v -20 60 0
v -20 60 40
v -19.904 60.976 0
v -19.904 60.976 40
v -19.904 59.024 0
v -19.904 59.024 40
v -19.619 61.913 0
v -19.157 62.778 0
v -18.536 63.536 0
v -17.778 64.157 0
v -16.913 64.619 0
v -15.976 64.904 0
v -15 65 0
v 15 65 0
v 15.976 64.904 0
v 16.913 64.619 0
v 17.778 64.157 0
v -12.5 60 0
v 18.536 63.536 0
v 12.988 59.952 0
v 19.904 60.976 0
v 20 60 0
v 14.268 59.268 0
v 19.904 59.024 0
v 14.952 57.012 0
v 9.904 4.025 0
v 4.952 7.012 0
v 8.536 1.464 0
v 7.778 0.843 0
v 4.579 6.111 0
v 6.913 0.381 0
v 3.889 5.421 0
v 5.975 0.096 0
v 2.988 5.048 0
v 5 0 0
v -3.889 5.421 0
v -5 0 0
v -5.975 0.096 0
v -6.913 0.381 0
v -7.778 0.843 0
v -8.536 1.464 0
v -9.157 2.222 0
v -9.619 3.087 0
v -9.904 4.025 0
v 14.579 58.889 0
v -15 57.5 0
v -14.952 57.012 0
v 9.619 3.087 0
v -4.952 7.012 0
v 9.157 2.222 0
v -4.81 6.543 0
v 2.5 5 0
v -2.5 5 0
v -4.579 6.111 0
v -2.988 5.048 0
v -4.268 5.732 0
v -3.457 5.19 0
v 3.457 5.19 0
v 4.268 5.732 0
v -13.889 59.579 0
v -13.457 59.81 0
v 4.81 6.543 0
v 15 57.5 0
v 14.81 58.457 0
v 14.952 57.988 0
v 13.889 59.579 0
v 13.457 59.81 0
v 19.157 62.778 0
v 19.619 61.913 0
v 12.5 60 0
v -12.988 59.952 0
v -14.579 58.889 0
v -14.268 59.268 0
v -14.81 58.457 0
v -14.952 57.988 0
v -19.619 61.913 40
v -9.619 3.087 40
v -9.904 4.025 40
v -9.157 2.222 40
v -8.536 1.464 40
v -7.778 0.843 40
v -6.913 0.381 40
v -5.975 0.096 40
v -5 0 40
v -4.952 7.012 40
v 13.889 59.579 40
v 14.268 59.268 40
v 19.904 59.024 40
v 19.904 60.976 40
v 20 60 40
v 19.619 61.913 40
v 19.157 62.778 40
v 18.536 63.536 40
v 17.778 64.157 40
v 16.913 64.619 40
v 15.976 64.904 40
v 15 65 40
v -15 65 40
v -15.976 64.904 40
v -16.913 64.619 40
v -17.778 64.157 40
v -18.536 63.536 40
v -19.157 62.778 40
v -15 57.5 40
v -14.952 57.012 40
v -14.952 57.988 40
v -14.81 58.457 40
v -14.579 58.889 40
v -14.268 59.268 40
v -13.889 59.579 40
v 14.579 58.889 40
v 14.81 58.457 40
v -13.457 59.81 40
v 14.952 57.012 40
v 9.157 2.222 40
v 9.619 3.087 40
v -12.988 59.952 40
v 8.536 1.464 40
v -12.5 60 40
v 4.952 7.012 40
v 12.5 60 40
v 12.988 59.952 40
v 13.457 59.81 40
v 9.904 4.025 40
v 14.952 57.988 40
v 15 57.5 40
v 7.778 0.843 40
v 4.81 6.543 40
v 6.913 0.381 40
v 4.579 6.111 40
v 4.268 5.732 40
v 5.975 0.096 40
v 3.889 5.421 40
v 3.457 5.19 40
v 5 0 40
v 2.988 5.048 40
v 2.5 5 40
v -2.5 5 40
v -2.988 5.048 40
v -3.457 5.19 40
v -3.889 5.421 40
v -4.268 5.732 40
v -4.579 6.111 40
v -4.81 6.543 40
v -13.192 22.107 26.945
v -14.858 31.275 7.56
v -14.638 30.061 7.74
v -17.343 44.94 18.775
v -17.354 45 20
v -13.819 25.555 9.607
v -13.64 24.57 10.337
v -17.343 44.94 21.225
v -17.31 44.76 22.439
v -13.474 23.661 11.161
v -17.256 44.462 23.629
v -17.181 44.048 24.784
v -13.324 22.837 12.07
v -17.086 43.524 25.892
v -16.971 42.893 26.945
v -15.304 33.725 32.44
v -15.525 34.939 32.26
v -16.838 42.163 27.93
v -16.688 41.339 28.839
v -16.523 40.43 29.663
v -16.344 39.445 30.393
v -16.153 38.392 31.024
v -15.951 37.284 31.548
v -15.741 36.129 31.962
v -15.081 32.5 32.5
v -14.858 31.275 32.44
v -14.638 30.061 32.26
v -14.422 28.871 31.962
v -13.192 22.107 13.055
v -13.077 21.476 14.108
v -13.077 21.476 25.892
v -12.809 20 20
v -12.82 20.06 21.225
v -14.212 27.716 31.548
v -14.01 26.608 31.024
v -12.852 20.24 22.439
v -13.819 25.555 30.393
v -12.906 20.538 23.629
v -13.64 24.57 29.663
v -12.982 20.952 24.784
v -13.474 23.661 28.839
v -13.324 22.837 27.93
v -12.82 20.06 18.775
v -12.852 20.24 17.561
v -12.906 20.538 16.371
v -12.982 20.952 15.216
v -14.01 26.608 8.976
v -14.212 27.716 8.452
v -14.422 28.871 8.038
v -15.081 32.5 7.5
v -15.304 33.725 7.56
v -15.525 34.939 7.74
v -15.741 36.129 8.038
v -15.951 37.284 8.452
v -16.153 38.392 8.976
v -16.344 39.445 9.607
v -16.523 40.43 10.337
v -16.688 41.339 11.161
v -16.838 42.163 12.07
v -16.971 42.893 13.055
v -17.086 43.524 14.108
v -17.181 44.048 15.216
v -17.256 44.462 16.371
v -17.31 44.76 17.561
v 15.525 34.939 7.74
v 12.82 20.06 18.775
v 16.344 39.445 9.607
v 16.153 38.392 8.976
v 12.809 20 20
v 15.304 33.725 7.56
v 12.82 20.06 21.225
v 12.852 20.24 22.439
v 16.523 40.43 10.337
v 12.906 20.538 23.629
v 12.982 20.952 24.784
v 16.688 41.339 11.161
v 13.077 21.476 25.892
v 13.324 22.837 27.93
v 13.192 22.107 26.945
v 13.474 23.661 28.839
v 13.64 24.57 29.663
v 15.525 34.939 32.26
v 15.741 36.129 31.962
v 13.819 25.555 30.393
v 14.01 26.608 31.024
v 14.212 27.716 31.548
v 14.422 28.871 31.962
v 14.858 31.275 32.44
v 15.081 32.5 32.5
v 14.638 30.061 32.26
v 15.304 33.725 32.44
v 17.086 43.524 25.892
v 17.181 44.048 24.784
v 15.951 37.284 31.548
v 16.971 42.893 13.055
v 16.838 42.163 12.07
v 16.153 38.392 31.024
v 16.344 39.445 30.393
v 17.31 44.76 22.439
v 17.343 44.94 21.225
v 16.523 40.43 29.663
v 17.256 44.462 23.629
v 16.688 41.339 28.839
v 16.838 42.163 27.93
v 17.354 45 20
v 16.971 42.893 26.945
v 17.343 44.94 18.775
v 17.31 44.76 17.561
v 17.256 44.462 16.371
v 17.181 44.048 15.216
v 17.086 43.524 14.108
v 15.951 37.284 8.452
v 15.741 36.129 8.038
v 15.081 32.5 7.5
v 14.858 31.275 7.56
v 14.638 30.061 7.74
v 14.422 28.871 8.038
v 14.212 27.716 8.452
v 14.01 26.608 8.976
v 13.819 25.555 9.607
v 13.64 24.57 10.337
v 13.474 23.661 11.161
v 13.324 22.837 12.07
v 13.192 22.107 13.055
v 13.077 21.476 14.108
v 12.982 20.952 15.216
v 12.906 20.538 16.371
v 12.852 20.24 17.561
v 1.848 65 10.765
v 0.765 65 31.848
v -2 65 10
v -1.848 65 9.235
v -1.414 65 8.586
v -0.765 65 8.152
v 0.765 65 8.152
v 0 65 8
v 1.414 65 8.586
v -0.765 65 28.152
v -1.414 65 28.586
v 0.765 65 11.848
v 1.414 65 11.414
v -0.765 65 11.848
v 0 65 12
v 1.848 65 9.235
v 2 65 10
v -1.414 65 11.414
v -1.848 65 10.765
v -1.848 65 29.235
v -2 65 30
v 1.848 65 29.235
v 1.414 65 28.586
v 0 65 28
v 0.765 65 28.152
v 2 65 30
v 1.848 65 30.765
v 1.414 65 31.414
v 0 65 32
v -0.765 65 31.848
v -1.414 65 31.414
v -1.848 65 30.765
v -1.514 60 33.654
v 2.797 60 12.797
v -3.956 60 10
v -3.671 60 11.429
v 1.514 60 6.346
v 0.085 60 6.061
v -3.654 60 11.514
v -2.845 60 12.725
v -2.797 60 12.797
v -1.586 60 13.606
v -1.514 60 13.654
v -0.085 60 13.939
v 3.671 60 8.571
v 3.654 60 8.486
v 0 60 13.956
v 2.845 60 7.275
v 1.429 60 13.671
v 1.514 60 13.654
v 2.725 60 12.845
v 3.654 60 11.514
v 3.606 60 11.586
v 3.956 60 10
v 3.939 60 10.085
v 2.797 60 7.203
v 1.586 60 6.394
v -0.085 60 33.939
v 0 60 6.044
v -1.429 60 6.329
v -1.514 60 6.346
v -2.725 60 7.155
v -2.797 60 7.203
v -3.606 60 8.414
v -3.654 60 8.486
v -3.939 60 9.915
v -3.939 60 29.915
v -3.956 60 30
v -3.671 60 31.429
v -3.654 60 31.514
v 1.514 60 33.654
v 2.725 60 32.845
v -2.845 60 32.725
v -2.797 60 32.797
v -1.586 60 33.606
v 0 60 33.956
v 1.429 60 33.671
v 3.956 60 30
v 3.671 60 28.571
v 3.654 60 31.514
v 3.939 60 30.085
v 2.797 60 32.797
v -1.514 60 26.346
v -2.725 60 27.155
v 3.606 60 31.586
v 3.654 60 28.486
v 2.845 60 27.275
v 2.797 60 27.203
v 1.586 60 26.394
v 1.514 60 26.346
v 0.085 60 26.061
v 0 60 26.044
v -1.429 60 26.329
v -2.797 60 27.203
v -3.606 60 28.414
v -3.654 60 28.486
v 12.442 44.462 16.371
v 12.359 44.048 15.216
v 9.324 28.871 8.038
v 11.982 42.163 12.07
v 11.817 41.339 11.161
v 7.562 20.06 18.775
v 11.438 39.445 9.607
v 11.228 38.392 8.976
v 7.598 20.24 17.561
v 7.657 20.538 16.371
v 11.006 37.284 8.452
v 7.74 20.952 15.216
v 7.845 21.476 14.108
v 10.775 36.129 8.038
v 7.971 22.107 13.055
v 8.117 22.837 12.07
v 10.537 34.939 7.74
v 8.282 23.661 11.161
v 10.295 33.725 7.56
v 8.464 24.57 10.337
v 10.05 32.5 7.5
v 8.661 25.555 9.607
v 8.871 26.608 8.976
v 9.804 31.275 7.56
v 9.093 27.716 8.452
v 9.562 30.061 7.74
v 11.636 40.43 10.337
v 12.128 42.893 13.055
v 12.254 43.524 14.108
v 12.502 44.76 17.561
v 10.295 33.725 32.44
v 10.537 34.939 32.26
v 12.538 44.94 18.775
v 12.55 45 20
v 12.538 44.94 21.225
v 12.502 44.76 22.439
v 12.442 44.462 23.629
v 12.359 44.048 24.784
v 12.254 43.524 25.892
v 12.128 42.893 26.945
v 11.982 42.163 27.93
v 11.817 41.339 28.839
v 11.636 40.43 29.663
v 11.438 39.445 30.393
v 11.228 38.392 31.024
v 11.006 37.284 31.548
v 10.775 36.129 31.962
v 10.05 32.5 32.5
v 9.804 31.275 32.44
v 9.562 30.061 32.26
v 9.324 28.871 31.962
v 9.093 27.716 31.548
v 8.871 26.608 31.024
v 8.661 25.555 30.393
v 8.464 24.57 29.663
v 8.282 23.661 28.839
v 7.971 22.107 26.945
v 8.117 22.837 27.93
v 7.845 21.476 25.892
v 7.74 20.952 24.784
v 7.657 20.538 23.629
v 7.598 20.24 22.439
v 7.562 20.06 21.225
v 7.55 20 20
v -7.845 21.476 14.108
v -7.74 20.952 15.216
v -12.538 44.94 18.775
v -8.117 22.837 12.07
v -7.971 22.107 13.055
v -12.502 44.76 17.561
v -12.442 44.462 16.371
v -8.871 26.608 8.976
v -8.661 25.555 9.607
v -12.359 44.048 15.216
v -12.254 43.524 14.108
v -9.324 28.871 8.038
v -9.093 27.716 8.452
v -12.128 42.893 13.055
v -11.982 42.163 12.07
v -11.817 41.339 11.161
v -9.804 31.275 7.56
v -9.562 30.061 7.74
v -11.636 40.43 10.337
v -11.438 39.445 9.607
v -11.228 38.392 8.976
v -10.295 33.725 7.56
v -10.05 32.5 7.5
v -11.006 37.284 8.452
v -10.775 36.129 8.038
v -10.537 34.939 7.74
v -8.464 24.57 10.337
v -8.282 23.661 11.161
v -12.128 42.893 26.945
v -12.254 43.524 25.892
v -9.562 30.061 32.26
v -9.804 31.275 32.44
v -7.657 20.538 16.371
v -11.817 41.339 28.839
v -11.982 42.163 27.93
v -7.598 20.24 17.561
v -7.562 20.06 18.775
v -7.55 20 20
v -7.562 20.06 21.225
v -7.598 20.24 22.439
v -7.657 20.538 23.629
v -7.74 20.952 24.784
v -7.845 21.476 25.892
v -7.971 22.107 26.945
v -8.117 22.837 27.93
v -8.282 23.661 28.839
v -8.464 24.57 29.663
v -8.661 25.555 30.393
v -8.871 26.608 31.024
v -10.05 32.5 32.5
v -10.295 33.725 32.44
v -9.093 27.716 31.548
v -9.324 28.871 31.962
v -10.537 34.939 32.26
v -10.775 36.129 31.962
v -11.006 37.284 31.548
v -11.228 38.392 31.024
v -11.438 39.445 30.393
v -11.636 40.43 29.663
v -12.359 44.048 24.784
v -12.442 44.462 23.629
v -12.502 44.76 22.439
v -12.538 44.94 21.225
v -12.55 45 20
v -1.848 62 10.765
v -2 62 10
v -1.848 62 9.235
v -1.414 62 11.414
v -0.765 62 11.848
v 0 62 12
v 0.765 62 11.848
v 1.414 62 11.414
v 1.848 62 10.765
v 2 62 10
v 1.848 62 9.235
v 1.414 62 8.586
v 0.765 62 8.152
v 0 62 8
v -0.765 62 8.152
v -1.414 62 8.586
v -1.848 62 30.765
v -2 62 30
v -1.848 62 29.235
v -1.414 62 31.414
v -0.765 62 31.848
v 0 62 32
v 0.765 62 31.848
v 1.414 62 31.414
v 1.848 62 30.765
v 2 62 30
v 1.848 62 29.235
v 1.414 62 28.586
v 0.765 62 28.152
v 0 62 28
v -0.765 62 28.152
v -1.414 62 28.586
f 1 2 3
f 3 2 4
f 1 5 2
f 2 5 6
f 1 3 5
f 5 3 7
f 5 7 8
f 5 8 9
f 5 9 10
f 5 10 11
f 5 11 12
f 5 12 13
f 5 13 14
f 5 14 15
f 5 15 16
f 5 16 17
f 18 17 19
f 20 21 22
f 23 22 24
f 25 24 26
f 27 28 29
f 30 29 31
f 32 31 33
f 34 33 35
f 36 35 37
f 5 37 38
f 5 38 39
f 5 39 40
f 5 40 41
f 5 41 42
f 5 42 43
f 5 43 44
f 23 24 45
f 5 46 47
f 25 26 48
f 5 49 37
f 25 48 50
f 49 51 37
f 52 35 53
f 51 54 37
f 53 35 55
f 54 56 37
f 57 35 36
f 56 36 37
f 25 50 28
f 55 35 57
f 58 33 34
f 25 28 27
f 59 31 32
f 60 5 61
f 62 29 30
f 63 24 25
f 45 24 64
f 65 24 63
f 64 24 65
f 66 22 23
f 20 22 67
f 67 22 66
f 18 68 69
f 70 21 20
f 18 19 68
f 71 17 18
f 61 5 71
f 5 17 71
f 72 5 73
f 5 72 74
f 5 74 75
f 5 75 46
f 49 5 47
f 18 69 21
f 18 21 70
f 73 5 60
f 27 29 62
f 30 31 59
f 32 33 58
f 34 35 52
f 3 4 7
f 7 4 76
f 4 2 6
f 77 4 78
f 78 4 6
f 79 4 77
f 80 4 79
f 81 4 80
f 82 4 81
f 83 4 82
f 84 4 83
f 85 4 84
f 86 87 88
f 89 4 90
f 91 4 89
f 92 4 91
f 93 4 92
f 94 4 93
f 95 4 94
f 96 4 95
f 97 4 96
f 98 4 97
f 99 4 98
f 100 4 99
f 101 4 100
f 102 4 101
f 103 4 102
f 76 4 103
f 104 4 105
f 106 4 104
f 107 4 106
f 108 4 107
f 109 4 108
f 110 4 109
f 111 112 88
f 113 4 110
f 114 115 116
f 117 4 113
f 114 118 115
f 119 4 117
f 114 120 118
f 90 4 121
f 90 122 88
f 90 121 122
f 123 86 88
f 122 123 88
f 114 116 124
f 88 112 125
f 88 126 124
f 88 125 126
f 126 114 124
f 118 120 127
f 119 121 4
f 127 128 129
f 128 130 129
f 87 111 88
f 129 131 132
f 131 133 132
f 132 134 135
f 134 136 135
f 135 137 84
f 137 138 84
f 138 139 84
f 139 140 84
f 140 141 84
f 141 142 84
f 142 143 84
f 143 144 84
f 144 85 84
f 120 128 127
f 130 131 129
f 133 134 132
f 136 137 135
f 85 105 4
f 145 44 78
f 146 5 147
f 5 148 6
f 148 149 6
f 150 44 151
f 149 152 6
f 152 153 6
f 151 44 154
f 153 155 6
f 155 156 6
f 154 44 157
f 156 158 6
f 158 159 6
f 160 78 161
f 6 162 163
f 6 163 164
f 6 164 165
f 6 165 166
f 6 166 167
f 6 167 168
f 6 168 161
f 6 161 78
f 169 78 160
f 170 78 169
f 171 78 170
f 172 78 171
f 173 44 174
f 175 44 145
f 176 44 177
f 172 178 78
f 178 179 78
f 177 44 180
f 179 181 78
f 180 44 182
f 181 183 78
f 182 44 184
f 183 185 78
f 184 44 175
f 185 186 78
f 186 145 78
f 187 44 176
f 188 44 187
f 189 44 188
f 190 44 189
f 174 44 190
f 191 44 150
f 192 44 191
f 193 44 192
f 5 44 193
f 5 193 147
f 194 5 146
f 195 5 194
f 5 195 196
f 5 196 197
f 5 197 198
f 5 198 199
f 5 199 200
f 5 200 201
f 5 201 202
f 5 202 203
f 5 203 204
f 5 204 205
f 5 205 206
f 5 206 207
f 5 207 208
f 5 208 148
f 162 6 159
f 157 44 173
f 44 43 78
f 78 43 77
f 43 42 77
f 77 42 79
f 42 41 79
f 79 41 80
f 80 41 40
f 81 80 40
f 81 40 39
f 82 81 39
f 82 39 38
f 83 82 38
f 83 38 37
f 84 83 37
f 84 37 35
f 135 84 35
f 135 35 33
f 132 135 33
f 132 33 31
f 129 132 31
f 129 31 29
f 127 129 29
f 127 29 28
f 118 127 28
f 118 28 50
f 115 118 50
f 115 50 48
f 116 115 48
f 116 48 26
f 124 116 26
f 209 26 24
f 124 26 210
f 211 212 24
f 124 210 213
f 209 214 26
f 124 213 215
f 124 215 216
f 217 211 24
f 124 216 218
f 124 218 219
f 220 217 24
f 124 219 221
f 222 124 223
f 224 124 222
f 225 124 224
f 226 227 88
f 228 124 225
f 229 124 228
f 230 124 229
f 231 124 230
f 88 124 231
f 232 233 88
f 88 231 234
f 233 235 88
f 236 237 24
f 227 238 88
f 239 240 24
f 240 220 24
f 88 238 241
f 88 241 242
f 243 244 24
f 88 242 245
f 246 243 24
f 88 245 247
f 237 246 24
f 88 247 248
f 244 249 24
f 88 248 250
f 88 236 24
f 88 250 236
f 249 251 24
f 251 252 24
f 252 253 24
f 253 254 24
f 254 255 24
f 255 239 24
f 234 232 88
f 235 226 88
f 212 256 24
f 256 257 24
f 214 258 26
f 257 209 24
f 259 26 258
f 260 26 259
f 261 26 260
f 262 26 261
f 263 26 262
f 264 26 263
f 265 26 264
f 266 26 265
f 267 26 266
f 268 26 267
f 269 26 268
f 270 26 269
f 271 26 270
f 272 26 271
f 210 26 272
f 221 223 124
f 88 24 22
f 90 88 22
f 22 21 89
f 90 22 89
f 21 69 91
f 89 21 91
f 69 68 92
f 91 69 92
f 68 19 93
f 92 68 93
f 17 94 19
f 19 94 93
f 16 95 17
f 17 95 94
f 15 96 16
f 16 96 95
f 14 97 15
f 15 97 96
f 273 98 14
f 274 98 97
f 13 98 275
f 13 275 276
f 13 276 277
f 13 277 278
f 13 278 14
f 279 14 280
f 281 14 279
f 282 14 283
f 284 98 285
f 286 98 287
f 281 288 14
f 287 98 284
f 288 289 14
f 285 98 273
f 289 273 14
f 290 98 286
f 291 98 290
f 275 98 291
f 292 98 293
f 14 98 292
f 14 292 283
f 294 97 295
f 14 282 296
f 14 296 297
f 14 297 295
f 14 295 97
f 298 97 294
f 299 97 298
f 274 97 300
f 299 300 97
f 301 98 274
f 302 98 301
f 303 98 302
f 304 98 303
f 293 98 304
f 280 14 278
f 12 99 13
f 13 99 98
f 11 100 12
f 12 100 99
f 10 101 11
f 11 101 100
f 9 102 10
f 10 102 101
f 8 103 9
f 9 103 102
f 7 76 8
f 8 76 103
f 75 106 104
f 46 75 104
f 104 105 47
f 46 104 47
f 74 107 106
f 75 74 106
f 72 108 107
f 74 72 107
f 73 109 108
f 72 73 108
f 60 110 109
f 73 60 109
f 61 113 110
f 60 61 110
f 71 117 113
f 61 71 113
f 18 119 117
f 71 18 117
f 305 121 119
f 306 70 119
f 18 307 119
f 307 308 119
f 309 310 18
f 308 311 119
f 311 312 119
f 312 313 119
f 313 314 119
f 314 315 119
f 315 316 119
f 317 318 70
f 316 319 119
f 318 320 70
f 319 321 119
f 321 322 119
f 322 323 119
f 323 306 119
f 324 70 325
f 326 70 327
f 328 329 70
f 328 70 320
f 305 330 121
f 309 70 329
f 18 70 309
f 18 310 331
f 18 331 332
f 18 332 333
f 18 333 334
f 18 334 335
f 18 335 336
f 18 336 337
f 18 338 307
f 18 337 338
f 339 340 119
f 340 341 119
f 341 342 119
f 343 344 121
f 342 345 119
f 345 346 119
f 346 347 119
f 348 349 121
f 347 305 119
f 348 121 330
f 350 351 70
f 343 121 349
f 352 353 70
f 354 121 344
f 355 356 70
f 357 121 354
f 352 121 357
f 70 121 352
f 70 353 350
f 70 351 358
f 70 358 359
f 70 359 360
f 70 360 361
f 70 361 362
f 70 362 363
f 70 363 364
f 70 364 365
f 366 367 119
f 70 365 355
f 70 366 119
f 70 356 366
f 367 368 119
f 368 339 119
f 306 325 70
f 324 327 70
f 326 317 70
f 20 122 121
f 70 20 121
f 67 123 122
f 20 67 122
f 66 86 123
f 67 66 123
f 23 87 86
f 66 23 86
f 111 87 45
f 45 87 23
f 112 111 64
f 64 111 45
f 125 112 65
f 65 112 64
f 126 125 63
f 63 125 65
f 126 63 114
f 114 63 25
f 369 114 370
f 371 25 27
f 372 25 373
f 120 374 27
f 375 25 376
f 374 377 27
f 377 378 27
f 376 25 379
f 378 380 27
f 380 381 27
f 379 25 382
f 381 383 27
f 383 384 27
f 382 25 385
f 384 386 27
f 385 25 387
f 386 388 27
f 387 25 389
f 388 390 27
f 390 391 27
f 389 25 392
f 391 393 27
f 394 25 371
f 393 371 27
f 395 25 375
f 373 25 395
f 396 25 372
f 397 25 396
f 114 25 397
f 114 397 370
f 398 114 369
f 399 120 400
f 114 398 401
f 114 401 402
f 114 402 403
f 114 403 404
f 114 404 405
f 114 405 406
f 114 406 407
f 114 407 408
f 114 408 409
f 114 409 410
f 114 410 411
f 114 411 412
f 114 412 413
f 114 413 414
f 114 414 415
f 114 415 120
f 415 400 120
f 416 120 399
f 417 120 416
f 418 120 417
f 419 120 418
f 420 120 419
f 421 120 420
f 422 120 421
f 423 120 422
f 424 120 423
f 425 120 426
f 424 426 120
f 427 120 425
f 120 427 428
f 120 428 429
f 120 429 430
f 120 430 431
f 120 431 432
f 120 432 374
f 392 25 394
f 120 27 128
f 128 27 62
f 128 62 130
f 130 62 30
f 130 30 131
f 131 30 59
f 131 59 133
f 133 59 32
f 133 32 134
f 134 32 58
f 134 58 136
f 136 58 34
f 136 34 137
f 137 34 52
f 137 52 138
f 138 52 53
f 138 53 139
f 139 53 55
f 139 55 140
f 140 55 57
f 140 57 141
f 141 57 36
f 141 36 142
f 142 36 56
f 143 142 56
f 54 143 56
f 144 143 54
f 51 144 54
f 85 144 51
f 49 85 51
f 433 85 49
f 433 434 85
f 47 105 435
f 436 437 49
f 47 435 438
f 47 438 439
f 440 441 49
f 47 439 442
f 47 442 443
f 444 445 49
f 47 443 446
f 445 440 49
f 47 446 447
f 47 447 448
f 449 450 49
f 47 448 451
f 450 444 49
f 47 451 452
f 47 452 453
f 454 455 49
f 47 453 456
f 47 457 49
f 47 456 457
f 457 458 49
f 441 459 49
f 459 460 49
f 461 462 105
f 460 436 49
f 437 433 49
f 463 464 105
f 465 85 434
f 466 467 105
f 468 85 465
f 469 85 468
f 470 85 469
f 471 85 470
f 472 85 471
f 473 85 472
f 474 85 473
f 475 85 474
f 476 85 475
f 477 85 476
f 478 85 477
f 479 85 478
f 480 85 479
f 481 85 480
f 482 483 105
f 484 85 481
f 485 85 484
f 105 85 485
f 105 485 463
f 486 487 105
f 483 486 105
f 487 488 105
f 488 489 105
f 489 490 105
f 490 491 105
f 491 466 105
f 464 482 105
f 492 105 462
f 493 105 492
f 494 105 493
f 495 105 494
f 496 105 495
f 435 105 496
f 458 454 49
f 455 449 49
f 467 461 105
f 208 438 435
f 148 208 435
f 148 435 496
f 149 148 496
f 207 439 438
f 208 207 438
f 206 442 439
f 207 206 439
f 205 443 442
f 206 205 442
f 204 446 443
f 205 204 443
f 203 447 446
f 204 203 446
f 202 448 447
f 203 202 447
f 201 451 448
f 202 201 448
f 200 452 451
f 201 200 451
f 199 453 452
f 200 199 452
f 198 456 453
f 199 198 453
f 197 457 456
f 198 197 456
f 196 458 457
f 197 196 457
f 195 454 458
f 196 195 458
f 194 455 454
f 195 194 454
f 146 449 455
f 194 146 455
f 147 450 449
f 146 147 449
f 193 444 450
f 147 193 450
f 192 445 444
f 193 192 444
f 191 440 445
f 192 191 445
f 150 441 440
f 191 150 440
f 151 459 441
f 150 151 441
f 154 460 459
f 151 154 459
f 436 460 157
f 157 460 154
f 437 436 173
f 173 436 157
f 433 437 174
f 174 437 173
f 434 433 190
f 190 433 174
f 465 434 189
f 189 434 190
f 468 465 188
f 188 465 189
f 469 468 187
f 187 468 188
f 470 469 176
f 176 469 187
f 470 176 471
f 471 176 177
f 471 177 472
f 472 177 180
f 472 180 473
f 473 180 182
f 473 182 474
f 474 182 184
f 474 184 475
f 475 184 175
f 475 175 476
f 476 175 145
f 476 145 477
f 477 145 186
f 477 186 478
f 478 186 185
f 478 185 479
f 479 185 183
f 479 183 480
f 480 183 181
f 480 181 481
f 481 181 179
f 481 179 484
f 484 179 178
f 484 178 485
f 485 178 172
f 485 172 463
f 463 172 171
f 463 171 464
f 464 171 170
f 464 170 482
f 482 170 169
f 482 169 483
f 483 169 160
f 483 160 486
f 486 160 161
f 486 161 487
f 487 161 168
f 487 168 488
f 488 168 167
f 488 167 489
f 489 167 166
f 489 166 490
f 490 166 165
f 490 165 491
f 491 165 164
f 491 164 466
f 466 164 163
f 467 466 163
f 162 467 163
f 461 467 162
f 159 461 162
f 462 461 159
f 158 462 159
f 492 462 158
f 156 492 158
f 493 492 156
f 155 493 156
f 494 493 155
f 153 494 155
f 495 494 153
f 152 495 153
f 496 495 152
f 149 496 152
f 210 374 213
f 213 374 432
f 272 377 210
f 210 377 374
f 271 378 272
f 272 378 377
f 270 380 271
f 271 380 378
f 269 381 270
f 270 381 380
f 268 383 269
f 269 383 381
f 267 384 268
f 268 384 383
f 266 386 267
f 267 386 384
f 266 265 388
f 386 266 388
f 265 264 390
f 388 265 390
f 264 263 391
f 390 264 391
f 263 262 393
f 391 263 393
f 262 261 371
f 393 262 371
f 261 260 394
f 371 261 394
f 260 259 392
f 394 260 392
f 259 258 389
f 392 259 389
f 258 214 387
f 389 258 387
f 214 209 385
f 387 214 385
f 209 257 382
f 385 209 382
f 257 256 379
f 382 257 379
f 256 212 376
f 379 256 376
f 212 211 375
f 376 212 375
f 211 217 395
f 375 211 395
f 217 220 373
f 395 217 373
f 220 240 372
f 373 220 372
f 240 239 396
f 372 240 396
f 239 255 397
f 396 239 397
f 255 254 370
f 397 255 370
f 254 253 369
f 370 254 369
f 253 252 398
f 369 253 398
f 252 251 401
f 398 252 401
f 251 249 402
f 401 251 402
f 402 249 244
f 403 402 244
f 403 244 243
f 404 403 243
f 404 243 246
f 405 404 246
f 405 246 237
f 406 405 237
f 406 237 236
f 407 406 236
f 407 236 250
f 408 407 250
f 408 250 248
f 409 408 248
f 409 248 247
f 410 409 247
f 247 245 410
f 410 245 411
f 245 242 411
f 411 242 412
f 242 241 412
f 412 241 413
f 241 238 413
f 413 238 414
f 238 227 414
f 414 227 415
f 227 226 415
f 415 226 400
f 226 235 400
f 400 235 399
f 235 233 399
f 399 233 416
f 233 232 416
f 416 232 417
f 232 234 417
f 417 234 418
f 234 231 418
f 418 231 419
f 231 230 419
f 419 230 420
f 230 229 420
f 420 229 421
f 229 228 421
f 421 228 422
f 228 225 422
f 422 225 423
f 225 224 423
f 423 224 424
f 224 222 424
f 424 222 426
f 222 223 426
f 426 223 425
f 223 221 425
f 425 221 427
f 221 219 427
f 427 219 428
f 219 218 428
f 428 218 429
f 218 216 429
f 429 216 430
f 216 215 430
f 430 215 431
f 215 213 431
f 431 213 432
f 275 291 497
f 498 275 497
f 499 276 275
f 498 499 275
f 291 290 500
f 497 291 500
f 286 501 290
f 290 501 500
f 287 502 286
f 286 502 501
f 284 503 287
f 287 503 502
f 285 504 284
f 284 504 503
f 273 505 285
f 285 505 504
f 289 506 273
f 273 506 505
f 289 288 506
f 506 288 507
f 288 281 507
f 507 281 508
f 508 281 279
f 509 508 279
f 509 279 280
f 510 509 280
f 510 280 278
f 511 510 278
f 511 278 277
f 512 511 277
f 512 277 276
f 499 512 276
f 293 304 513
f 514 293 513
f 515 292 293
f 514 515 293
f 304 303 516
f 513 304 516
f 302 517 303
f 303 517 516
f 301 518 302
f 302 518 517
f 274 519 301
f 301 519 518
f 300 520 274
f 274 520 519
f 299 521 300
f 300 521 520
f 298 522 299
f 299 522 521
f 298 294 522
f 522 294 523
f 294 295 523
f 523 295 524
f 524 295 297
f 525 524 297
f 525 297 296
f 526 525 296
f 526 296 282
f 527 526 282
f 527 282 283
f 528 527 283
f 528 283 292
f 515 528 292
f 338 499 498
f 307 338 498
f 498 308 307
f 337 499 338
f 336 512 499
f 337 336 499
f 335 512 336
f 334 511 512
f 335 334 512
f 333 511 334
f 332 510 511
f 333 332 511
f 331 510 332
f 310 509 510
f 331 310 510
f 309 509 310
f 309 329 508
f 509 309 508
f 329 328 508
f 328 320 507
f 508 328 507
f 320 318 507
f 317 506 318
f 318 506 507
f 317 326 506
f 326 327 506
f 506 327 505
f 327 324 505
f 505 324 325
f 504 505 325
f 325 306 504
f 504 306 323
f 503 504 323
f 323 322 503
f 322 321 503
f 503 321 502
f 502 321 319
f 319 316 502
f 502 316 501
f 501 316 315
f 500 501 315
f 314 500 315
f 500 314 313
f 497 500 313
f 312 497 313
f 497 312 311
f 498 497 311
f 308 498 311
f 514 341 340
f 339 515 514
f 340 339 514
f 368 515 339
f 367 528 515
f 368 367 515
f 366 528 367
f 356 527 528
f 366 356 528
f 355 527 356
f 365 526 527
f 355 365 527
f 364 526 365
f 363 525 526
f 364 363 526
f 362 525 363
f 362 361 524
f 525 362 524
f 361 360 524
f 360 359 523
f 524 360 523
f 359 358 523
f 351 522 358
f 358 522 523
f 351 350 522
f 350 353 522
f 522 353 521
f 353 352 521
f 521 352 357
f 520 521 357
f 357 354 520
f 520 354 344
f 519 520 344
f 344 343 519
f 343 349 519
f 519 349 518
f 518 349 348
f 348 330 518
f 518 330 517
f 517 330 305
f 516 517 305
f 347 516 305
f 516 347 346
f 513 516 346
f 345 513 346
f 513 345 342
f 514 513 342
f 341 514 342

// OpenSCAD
// file: common.scad
// CoreBeam Laser Engraver
//
// Licence: CC BY-SA 3.0, http://creativecommons.org/licenses/by-sa/3.0/
// Author: Dominik Scholz <schlotzz@schlotzz.com>
// visit: http://www.schlotzz.com
//
// definitions of common values



// avoid openscad artefacts in preview
epsilon = 0.01;

// increase this if your slicer or printer make holes too tight
extra_radius = 0.1;

// major diameter of metric 3mm thread
m3_major = 2.85;
m3_radius = m3_major / 2 + extra_radius;
m3_wide_radius = m3_major / 2 + extra_radius + 0.2;
m3_small_radius = m3_radius - 0.1;

// diameter of metric 3mm hexnut screw head
m3_head_radius = 3 + extra_radius;

// nema 17 dimensions
nema17_width = 42.3;
nema17_hole_offsets = [
	[-15.5, -15.5, 0],
	[-15.5,  15.5, 0],
	[ 15.5, -15.5, 0],
	[ 15.5,  15.5, 0]
];


// hole for retaining a m3 hexnut
module m3_hexnut_cutout(additional_height = 0)
{
	cylinder(r = 3.15 + 2.5 * extra_radius, h = 2.5 + 3 * extra_radius + additional_height, $fn = 6);
}


// rounded rectangle
module roundedRectangle(size, radius)
{
	cube([size[0], size[1] - radius * 2, size[2]], true);
	cube([size[0] - radius * 2, size[1], size[2]], true);

	for (x = [-size[0] / 2 + radius, size[0] / 2 - radius])
		for (y = [-size[1] / 2 + radius, size[1] / 2 - radius])
			translate([x, y, 0])
				cylinder(size[2], radius, radius, true);
}


// rounded trapezoid
module roundedTrapezoid(size, radius, bottom)
{
	hull()
	{
		// bottom
		for (i = [[-bottom / 2 + radius, radius, 0], [bottom / 2 - radius, radius, 0]])
			translate(i)
				cylinder(r = radius, h = size[2], $fn = 32);

		// top
		for (i = [[-size[0] / 2 + radius, size[1] - radius, 0], [size[0] / 2 - radius, size[1] - radius, 0]])
			translate(i)
				cylinder(r = radius, h = size[2], $fn = 32);


	}

}


// hole for wood screw 4x15, countersunk head
module woodscrew_cutout()
{
	translate([0, 0, -epsilon])
		cylinder(r = 2.0, h = 3 + epsilon * 2, $fn = 16);

	translate([0, 0, 3])
		cylinder(r1 = 2.0, r2 = 4.2, h = 2.25, $fn = 16);

	translate([0, 0, 5.25 - epsilon])
		cylinder(r = 4.2, h = 30, $fn = 16);
}
// main file
// CoreBeam Laser Engraver
//
// Licence: CC BY-SA 3.0, http://creativecommons.org/licenses/by-sa/3.0/
// Author: Dominik Scholz <schlotzz@schlotzz.com>
// visit: http://www.schlotzz.com
//
// pedestal


// include files
include <common.scad>;



// pedestal for wooden frame
module pedestal()
{
	width = 40;
	height = 65;
	bottom_width = 20;
	depth = 40;
	radius = 5;
	thickness = 5;

	difference()
	{
		// base
		roundedTrapezoid([width, height, depth], radius, bottom_width);

		// middle cutout
		translate([0, thickness, -epsilon])
			roundedTrapezoid([width - thickness * 2, height - thickness * 2, depth + 2 * epsilon], radius / 2, bottom_width - 2 * thickness);
		
		// side cutout
		translate([0, height / 2, depth / 2])
			rotate([0, 90, 0])
				cylinder(r = (depth - thickness * 3) / 2, h = width + 2 * epsilon, center = true, $fn = 64);

		// mounting holes for wood screws
		for (i = [-10, 10])
			translate([0, height, depth / 2 + i])
			rotate([90, 0, 0])
				woodscrew_cutout();
	}

}

pedestal();
